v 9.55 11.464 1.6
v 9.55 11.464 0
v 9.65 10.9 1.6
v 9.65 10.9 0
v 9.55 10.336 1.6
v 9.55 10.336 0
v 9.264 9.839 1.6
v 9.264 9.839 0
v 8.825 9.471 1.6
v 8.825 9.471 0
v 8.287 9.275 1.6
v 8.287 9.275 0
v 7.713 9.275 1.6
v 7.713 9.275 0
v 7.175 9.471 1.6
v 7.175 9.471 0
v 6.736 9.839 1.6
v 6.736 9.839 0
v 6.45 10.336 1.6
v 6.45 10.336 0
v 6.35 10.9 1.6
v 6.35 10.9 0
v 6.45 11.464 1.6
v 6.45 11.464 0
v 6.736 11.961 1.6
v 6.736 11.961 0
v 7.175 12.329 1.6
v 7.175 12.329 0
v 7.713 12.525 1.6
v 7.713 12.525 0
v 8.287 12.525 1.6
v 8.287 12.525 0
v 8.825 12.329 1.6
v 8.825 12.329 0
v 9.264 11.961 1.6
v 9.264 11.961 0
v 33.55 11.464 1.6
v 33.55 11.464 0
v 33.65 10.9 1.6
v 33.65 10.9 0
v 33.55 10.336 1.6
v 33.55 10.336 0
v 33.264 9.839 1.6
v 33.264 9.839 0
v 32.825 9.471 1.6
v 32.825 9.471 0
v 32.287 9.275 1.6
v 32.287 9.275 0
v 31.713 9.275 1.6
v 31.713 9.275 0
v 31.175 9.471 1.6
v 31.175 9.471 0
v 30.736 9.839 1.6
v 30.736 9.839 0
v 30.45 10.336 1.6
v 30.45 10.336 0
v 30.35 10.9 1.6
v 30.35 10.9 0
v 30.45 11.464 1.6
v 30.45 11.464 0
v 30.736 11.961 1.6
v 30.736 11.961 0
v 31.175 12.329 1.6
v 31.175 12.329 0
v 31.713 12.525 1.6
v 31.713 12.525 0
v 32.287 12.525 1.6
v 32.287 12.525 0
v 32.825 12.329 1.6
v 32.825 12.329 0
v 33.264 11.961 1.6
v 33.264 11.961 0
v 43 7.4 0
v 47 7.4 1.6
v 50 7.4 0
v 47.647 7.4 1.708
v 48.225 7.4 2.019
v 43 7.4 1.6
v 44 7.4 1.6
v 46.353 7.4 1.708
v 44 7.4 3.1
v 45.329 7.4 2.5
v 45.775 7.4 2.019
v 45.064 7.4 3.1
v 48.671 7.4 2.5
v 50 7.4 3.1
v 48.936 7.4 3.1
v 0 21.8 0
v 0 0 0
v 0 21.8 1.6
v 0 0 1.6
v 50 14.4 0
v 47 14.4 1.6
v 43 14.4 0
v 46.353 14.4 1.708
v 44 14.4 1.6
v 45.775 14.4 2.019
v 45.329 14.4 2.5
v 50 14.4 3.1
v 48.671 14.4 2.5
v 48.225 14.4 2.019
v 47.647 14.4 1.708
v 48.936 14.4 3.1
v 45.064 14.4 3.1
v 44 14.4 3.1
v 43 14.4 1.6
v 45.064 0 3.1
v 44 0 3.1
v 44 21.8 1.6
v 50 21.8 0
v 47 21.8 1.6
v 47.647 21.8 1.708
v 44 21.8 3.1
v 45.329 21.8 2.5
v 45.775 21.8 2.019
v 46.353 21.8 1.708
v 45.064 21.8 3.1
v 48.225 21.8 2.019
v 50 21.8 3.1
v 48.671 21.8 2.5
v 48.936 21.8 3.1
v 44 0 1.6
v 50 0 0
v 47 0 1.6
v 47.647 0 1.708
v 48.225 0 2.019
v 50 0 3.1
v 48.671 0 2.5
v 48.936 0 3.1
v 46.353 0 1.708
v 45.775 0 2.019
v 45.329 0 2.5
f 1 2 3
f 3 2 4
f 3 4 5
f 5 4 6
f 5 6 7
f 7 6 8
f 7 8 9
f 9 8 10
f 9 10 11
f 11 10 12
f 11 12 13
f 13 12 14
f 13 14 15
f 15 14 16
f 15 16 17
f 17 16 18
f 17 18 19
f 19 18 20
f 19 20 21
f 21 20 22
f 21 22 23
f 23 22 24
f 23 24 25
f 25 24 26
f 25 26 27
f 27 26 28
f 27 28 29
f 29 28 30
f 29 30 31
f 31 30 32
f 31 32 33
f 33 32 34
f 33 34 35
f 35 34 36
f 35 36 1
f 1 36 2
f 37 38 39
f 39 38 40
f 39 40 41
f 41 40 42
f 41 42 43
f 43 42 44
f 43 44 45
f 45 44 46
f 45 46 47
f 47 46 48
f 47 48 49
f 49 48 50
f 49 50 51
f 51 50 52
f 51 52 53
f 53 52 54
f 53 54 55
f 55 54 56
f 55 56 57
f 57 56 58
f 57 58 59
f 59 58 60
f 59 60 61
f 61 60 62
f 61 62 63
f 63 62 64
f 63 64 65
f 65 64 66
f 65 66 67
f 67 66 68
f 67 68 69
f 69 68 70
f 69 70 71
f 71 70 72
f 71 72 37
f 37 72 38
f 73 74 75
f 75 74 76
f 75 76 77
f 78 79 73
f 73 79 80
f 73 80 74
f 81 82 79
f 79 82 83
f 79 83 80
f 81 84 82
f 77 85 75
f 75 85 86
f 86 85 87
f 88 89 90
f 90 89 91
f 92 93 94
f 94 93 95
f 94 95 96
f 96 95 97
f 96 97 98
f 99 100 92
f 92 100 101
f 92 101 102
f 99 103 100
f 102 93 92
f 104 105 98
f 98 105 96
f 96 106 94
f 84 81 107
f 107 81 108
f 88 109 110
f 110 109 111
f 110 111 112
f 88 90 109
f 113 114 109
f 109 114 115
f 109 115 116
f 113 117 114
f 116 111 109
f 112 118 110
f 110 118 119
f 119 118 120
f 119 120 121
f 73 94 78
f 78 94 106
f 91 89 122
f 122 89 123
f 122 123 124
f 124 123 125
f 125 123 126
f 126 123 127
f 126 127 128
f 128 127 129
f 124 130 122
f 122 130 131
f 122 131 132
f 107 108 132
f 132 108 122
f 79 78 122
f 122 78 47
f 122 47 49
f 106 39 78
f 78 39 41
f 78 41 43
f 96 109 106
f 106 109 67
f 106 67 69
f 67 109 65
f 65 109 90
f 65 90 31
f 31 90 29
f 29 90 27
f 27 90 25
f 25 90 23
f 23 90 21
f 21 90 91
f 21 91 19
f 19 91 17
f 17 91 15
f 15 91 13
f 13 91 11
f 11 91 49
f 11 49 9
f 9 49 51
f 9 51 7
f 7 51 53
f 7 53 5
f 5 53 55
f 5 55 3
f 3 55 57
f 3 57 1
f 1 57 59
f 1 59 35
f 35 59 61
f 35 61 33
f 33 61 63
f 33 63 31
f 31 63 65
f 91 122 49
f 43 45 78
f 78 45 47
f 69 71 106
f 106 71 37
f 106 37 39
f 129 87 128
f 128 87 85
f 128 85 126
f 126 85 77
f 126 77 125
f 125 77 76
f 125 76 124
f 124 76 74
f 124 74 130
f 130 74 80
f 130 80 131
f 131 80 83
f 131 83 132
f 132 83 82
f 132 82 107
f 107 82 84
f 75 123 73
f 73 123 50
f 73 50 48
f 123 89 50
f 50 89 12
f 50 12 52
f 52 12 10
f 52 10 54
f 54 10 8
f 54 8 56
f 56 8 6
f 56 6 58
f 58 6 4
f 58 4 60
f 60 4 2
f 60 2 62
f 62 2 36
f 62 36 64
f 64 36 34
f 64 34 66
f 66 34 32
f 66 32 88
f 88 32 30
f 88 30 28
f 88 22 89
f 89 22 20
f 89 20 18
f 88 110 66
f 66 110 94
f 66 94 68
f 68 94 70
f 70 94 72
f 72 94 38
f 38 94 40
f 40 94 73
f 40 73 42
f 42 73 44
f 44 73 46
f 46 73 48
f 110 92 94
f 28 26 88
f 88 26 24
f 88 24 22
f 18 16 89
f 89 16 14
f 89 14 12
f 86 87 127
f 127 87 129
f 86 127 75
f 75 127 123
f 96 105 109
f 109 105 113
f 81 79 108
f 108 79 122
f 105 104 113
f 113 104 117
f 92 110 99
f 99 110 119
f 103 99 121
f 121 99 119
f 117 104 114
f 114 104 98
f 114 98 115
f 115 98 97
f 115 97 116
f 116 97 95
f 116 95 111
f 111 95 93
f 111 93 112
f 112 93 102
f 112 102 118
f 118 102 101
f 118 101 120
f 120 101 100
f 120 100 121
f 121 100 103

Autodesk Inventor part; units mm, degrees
ref_plane "YZ Plane" through (0, 0, 0) normal (1, 0, 0) x (0, 1, 0)
ref_plane "XZ Plane" through (0, 0, 0) normal (0, 1, 0) x (-1, 0, 0)
ref_plane "XY Plane" through (0, 0, 0) normal (0, 0, 1) x (1, 0, 0)
sketch "Sketch1" plane through (0, 0, 0) normal (0, 0, 1) x (1, 0, 0)
  line L0 (0, 0) -> (50, 0)
  line L1 (50, 0) -> (50, 21.8)
  line L2 (50, 21.8) -> (0, 21.8)
  line L3 (0, 21.8) -> (0, 0)
  circle A0 centre (8, 10.9) radius 1.65
  circle A1 centre (32, 10.9) radius 1.65
  line L4 (50, 14.4) -> (43, 14.4)
  line L5 (43, 14.4) -> (43, 7.4)
  line L6 (43, 7.4) -> (50, 7.4)
  line L7 (50, 7.4) -> (50, 14.4)
  point P0 (46.5, 14.4)
  dimension "d0" = 50
  dimension "d1" = 21.8
  dimension "d2" = 3.3
  dimension "d3" = 3.3
  dimension "d4" = 8
  dimension "d5" = 24
  dimension "d6" = 10.9
  dimension "d7" = 10.9
  dimension "d10" = 7
  dimension "d11" = 7
  dimension "d12" = 7.4
extrude "Extrusion1" add sketch "Sketch1" along normal blind 1.6 contours L3 L2 L1 L4 L5 L6 L0
sketch "Sketch2" plane through (0, 0, 0) normal (0, -1, 0) x (1, 0, 0)
  line L0 (50, 0) -> (50, 1.6) projected
  line L1 (50, 1.6) -> (44, 1.6)
  line L2 (44, 1.6) -> (44, 3.1)
  line L3 (44, 3.1) -> (50, 3.1)
  line L4 (50, 3.1) -> (50, 1.6)
  circle A0 centre (47, 3.6) radius 2
  point P0 (0, 0)
  point P1 (47, 1.6)
  point P2 (47, 1.6)
  point P3 (45.0635, 3.1)
  point P4 (48.9365, 3.1)
  dimension "d13" = 6
  dimension "d14" = 1.5
  dimension "d15" = 4
  dimension "d16" = 2
  dimension "d17" = 3
extrude "Extrusion2" add sketch "Sketch2" against normal blind 21.8 contours L1 A0 L3 L4 | L1 L2 L3 A0
sketch "Sketch3" plane through (0, 0, 1.6) normal (0, 0, 1) x (1, 0, 0)
  line L0 (50, 7.4) -> (50, 14.4) projected
  line L1 (43, 14.4) -> (50, 14.4)
  line L2 (50, 14.4) -> (50, 7.4)
  line L3 (50, 7.4) -> (43, 7.4)
  line L4 (43, 7.4) -> (43, 14.4)
  point P0 (0, 0)
extrude "Extrusion3" cut sketch "Sketch3" along normal blind 5 and the other way blind 5
properties part number "Counter"
